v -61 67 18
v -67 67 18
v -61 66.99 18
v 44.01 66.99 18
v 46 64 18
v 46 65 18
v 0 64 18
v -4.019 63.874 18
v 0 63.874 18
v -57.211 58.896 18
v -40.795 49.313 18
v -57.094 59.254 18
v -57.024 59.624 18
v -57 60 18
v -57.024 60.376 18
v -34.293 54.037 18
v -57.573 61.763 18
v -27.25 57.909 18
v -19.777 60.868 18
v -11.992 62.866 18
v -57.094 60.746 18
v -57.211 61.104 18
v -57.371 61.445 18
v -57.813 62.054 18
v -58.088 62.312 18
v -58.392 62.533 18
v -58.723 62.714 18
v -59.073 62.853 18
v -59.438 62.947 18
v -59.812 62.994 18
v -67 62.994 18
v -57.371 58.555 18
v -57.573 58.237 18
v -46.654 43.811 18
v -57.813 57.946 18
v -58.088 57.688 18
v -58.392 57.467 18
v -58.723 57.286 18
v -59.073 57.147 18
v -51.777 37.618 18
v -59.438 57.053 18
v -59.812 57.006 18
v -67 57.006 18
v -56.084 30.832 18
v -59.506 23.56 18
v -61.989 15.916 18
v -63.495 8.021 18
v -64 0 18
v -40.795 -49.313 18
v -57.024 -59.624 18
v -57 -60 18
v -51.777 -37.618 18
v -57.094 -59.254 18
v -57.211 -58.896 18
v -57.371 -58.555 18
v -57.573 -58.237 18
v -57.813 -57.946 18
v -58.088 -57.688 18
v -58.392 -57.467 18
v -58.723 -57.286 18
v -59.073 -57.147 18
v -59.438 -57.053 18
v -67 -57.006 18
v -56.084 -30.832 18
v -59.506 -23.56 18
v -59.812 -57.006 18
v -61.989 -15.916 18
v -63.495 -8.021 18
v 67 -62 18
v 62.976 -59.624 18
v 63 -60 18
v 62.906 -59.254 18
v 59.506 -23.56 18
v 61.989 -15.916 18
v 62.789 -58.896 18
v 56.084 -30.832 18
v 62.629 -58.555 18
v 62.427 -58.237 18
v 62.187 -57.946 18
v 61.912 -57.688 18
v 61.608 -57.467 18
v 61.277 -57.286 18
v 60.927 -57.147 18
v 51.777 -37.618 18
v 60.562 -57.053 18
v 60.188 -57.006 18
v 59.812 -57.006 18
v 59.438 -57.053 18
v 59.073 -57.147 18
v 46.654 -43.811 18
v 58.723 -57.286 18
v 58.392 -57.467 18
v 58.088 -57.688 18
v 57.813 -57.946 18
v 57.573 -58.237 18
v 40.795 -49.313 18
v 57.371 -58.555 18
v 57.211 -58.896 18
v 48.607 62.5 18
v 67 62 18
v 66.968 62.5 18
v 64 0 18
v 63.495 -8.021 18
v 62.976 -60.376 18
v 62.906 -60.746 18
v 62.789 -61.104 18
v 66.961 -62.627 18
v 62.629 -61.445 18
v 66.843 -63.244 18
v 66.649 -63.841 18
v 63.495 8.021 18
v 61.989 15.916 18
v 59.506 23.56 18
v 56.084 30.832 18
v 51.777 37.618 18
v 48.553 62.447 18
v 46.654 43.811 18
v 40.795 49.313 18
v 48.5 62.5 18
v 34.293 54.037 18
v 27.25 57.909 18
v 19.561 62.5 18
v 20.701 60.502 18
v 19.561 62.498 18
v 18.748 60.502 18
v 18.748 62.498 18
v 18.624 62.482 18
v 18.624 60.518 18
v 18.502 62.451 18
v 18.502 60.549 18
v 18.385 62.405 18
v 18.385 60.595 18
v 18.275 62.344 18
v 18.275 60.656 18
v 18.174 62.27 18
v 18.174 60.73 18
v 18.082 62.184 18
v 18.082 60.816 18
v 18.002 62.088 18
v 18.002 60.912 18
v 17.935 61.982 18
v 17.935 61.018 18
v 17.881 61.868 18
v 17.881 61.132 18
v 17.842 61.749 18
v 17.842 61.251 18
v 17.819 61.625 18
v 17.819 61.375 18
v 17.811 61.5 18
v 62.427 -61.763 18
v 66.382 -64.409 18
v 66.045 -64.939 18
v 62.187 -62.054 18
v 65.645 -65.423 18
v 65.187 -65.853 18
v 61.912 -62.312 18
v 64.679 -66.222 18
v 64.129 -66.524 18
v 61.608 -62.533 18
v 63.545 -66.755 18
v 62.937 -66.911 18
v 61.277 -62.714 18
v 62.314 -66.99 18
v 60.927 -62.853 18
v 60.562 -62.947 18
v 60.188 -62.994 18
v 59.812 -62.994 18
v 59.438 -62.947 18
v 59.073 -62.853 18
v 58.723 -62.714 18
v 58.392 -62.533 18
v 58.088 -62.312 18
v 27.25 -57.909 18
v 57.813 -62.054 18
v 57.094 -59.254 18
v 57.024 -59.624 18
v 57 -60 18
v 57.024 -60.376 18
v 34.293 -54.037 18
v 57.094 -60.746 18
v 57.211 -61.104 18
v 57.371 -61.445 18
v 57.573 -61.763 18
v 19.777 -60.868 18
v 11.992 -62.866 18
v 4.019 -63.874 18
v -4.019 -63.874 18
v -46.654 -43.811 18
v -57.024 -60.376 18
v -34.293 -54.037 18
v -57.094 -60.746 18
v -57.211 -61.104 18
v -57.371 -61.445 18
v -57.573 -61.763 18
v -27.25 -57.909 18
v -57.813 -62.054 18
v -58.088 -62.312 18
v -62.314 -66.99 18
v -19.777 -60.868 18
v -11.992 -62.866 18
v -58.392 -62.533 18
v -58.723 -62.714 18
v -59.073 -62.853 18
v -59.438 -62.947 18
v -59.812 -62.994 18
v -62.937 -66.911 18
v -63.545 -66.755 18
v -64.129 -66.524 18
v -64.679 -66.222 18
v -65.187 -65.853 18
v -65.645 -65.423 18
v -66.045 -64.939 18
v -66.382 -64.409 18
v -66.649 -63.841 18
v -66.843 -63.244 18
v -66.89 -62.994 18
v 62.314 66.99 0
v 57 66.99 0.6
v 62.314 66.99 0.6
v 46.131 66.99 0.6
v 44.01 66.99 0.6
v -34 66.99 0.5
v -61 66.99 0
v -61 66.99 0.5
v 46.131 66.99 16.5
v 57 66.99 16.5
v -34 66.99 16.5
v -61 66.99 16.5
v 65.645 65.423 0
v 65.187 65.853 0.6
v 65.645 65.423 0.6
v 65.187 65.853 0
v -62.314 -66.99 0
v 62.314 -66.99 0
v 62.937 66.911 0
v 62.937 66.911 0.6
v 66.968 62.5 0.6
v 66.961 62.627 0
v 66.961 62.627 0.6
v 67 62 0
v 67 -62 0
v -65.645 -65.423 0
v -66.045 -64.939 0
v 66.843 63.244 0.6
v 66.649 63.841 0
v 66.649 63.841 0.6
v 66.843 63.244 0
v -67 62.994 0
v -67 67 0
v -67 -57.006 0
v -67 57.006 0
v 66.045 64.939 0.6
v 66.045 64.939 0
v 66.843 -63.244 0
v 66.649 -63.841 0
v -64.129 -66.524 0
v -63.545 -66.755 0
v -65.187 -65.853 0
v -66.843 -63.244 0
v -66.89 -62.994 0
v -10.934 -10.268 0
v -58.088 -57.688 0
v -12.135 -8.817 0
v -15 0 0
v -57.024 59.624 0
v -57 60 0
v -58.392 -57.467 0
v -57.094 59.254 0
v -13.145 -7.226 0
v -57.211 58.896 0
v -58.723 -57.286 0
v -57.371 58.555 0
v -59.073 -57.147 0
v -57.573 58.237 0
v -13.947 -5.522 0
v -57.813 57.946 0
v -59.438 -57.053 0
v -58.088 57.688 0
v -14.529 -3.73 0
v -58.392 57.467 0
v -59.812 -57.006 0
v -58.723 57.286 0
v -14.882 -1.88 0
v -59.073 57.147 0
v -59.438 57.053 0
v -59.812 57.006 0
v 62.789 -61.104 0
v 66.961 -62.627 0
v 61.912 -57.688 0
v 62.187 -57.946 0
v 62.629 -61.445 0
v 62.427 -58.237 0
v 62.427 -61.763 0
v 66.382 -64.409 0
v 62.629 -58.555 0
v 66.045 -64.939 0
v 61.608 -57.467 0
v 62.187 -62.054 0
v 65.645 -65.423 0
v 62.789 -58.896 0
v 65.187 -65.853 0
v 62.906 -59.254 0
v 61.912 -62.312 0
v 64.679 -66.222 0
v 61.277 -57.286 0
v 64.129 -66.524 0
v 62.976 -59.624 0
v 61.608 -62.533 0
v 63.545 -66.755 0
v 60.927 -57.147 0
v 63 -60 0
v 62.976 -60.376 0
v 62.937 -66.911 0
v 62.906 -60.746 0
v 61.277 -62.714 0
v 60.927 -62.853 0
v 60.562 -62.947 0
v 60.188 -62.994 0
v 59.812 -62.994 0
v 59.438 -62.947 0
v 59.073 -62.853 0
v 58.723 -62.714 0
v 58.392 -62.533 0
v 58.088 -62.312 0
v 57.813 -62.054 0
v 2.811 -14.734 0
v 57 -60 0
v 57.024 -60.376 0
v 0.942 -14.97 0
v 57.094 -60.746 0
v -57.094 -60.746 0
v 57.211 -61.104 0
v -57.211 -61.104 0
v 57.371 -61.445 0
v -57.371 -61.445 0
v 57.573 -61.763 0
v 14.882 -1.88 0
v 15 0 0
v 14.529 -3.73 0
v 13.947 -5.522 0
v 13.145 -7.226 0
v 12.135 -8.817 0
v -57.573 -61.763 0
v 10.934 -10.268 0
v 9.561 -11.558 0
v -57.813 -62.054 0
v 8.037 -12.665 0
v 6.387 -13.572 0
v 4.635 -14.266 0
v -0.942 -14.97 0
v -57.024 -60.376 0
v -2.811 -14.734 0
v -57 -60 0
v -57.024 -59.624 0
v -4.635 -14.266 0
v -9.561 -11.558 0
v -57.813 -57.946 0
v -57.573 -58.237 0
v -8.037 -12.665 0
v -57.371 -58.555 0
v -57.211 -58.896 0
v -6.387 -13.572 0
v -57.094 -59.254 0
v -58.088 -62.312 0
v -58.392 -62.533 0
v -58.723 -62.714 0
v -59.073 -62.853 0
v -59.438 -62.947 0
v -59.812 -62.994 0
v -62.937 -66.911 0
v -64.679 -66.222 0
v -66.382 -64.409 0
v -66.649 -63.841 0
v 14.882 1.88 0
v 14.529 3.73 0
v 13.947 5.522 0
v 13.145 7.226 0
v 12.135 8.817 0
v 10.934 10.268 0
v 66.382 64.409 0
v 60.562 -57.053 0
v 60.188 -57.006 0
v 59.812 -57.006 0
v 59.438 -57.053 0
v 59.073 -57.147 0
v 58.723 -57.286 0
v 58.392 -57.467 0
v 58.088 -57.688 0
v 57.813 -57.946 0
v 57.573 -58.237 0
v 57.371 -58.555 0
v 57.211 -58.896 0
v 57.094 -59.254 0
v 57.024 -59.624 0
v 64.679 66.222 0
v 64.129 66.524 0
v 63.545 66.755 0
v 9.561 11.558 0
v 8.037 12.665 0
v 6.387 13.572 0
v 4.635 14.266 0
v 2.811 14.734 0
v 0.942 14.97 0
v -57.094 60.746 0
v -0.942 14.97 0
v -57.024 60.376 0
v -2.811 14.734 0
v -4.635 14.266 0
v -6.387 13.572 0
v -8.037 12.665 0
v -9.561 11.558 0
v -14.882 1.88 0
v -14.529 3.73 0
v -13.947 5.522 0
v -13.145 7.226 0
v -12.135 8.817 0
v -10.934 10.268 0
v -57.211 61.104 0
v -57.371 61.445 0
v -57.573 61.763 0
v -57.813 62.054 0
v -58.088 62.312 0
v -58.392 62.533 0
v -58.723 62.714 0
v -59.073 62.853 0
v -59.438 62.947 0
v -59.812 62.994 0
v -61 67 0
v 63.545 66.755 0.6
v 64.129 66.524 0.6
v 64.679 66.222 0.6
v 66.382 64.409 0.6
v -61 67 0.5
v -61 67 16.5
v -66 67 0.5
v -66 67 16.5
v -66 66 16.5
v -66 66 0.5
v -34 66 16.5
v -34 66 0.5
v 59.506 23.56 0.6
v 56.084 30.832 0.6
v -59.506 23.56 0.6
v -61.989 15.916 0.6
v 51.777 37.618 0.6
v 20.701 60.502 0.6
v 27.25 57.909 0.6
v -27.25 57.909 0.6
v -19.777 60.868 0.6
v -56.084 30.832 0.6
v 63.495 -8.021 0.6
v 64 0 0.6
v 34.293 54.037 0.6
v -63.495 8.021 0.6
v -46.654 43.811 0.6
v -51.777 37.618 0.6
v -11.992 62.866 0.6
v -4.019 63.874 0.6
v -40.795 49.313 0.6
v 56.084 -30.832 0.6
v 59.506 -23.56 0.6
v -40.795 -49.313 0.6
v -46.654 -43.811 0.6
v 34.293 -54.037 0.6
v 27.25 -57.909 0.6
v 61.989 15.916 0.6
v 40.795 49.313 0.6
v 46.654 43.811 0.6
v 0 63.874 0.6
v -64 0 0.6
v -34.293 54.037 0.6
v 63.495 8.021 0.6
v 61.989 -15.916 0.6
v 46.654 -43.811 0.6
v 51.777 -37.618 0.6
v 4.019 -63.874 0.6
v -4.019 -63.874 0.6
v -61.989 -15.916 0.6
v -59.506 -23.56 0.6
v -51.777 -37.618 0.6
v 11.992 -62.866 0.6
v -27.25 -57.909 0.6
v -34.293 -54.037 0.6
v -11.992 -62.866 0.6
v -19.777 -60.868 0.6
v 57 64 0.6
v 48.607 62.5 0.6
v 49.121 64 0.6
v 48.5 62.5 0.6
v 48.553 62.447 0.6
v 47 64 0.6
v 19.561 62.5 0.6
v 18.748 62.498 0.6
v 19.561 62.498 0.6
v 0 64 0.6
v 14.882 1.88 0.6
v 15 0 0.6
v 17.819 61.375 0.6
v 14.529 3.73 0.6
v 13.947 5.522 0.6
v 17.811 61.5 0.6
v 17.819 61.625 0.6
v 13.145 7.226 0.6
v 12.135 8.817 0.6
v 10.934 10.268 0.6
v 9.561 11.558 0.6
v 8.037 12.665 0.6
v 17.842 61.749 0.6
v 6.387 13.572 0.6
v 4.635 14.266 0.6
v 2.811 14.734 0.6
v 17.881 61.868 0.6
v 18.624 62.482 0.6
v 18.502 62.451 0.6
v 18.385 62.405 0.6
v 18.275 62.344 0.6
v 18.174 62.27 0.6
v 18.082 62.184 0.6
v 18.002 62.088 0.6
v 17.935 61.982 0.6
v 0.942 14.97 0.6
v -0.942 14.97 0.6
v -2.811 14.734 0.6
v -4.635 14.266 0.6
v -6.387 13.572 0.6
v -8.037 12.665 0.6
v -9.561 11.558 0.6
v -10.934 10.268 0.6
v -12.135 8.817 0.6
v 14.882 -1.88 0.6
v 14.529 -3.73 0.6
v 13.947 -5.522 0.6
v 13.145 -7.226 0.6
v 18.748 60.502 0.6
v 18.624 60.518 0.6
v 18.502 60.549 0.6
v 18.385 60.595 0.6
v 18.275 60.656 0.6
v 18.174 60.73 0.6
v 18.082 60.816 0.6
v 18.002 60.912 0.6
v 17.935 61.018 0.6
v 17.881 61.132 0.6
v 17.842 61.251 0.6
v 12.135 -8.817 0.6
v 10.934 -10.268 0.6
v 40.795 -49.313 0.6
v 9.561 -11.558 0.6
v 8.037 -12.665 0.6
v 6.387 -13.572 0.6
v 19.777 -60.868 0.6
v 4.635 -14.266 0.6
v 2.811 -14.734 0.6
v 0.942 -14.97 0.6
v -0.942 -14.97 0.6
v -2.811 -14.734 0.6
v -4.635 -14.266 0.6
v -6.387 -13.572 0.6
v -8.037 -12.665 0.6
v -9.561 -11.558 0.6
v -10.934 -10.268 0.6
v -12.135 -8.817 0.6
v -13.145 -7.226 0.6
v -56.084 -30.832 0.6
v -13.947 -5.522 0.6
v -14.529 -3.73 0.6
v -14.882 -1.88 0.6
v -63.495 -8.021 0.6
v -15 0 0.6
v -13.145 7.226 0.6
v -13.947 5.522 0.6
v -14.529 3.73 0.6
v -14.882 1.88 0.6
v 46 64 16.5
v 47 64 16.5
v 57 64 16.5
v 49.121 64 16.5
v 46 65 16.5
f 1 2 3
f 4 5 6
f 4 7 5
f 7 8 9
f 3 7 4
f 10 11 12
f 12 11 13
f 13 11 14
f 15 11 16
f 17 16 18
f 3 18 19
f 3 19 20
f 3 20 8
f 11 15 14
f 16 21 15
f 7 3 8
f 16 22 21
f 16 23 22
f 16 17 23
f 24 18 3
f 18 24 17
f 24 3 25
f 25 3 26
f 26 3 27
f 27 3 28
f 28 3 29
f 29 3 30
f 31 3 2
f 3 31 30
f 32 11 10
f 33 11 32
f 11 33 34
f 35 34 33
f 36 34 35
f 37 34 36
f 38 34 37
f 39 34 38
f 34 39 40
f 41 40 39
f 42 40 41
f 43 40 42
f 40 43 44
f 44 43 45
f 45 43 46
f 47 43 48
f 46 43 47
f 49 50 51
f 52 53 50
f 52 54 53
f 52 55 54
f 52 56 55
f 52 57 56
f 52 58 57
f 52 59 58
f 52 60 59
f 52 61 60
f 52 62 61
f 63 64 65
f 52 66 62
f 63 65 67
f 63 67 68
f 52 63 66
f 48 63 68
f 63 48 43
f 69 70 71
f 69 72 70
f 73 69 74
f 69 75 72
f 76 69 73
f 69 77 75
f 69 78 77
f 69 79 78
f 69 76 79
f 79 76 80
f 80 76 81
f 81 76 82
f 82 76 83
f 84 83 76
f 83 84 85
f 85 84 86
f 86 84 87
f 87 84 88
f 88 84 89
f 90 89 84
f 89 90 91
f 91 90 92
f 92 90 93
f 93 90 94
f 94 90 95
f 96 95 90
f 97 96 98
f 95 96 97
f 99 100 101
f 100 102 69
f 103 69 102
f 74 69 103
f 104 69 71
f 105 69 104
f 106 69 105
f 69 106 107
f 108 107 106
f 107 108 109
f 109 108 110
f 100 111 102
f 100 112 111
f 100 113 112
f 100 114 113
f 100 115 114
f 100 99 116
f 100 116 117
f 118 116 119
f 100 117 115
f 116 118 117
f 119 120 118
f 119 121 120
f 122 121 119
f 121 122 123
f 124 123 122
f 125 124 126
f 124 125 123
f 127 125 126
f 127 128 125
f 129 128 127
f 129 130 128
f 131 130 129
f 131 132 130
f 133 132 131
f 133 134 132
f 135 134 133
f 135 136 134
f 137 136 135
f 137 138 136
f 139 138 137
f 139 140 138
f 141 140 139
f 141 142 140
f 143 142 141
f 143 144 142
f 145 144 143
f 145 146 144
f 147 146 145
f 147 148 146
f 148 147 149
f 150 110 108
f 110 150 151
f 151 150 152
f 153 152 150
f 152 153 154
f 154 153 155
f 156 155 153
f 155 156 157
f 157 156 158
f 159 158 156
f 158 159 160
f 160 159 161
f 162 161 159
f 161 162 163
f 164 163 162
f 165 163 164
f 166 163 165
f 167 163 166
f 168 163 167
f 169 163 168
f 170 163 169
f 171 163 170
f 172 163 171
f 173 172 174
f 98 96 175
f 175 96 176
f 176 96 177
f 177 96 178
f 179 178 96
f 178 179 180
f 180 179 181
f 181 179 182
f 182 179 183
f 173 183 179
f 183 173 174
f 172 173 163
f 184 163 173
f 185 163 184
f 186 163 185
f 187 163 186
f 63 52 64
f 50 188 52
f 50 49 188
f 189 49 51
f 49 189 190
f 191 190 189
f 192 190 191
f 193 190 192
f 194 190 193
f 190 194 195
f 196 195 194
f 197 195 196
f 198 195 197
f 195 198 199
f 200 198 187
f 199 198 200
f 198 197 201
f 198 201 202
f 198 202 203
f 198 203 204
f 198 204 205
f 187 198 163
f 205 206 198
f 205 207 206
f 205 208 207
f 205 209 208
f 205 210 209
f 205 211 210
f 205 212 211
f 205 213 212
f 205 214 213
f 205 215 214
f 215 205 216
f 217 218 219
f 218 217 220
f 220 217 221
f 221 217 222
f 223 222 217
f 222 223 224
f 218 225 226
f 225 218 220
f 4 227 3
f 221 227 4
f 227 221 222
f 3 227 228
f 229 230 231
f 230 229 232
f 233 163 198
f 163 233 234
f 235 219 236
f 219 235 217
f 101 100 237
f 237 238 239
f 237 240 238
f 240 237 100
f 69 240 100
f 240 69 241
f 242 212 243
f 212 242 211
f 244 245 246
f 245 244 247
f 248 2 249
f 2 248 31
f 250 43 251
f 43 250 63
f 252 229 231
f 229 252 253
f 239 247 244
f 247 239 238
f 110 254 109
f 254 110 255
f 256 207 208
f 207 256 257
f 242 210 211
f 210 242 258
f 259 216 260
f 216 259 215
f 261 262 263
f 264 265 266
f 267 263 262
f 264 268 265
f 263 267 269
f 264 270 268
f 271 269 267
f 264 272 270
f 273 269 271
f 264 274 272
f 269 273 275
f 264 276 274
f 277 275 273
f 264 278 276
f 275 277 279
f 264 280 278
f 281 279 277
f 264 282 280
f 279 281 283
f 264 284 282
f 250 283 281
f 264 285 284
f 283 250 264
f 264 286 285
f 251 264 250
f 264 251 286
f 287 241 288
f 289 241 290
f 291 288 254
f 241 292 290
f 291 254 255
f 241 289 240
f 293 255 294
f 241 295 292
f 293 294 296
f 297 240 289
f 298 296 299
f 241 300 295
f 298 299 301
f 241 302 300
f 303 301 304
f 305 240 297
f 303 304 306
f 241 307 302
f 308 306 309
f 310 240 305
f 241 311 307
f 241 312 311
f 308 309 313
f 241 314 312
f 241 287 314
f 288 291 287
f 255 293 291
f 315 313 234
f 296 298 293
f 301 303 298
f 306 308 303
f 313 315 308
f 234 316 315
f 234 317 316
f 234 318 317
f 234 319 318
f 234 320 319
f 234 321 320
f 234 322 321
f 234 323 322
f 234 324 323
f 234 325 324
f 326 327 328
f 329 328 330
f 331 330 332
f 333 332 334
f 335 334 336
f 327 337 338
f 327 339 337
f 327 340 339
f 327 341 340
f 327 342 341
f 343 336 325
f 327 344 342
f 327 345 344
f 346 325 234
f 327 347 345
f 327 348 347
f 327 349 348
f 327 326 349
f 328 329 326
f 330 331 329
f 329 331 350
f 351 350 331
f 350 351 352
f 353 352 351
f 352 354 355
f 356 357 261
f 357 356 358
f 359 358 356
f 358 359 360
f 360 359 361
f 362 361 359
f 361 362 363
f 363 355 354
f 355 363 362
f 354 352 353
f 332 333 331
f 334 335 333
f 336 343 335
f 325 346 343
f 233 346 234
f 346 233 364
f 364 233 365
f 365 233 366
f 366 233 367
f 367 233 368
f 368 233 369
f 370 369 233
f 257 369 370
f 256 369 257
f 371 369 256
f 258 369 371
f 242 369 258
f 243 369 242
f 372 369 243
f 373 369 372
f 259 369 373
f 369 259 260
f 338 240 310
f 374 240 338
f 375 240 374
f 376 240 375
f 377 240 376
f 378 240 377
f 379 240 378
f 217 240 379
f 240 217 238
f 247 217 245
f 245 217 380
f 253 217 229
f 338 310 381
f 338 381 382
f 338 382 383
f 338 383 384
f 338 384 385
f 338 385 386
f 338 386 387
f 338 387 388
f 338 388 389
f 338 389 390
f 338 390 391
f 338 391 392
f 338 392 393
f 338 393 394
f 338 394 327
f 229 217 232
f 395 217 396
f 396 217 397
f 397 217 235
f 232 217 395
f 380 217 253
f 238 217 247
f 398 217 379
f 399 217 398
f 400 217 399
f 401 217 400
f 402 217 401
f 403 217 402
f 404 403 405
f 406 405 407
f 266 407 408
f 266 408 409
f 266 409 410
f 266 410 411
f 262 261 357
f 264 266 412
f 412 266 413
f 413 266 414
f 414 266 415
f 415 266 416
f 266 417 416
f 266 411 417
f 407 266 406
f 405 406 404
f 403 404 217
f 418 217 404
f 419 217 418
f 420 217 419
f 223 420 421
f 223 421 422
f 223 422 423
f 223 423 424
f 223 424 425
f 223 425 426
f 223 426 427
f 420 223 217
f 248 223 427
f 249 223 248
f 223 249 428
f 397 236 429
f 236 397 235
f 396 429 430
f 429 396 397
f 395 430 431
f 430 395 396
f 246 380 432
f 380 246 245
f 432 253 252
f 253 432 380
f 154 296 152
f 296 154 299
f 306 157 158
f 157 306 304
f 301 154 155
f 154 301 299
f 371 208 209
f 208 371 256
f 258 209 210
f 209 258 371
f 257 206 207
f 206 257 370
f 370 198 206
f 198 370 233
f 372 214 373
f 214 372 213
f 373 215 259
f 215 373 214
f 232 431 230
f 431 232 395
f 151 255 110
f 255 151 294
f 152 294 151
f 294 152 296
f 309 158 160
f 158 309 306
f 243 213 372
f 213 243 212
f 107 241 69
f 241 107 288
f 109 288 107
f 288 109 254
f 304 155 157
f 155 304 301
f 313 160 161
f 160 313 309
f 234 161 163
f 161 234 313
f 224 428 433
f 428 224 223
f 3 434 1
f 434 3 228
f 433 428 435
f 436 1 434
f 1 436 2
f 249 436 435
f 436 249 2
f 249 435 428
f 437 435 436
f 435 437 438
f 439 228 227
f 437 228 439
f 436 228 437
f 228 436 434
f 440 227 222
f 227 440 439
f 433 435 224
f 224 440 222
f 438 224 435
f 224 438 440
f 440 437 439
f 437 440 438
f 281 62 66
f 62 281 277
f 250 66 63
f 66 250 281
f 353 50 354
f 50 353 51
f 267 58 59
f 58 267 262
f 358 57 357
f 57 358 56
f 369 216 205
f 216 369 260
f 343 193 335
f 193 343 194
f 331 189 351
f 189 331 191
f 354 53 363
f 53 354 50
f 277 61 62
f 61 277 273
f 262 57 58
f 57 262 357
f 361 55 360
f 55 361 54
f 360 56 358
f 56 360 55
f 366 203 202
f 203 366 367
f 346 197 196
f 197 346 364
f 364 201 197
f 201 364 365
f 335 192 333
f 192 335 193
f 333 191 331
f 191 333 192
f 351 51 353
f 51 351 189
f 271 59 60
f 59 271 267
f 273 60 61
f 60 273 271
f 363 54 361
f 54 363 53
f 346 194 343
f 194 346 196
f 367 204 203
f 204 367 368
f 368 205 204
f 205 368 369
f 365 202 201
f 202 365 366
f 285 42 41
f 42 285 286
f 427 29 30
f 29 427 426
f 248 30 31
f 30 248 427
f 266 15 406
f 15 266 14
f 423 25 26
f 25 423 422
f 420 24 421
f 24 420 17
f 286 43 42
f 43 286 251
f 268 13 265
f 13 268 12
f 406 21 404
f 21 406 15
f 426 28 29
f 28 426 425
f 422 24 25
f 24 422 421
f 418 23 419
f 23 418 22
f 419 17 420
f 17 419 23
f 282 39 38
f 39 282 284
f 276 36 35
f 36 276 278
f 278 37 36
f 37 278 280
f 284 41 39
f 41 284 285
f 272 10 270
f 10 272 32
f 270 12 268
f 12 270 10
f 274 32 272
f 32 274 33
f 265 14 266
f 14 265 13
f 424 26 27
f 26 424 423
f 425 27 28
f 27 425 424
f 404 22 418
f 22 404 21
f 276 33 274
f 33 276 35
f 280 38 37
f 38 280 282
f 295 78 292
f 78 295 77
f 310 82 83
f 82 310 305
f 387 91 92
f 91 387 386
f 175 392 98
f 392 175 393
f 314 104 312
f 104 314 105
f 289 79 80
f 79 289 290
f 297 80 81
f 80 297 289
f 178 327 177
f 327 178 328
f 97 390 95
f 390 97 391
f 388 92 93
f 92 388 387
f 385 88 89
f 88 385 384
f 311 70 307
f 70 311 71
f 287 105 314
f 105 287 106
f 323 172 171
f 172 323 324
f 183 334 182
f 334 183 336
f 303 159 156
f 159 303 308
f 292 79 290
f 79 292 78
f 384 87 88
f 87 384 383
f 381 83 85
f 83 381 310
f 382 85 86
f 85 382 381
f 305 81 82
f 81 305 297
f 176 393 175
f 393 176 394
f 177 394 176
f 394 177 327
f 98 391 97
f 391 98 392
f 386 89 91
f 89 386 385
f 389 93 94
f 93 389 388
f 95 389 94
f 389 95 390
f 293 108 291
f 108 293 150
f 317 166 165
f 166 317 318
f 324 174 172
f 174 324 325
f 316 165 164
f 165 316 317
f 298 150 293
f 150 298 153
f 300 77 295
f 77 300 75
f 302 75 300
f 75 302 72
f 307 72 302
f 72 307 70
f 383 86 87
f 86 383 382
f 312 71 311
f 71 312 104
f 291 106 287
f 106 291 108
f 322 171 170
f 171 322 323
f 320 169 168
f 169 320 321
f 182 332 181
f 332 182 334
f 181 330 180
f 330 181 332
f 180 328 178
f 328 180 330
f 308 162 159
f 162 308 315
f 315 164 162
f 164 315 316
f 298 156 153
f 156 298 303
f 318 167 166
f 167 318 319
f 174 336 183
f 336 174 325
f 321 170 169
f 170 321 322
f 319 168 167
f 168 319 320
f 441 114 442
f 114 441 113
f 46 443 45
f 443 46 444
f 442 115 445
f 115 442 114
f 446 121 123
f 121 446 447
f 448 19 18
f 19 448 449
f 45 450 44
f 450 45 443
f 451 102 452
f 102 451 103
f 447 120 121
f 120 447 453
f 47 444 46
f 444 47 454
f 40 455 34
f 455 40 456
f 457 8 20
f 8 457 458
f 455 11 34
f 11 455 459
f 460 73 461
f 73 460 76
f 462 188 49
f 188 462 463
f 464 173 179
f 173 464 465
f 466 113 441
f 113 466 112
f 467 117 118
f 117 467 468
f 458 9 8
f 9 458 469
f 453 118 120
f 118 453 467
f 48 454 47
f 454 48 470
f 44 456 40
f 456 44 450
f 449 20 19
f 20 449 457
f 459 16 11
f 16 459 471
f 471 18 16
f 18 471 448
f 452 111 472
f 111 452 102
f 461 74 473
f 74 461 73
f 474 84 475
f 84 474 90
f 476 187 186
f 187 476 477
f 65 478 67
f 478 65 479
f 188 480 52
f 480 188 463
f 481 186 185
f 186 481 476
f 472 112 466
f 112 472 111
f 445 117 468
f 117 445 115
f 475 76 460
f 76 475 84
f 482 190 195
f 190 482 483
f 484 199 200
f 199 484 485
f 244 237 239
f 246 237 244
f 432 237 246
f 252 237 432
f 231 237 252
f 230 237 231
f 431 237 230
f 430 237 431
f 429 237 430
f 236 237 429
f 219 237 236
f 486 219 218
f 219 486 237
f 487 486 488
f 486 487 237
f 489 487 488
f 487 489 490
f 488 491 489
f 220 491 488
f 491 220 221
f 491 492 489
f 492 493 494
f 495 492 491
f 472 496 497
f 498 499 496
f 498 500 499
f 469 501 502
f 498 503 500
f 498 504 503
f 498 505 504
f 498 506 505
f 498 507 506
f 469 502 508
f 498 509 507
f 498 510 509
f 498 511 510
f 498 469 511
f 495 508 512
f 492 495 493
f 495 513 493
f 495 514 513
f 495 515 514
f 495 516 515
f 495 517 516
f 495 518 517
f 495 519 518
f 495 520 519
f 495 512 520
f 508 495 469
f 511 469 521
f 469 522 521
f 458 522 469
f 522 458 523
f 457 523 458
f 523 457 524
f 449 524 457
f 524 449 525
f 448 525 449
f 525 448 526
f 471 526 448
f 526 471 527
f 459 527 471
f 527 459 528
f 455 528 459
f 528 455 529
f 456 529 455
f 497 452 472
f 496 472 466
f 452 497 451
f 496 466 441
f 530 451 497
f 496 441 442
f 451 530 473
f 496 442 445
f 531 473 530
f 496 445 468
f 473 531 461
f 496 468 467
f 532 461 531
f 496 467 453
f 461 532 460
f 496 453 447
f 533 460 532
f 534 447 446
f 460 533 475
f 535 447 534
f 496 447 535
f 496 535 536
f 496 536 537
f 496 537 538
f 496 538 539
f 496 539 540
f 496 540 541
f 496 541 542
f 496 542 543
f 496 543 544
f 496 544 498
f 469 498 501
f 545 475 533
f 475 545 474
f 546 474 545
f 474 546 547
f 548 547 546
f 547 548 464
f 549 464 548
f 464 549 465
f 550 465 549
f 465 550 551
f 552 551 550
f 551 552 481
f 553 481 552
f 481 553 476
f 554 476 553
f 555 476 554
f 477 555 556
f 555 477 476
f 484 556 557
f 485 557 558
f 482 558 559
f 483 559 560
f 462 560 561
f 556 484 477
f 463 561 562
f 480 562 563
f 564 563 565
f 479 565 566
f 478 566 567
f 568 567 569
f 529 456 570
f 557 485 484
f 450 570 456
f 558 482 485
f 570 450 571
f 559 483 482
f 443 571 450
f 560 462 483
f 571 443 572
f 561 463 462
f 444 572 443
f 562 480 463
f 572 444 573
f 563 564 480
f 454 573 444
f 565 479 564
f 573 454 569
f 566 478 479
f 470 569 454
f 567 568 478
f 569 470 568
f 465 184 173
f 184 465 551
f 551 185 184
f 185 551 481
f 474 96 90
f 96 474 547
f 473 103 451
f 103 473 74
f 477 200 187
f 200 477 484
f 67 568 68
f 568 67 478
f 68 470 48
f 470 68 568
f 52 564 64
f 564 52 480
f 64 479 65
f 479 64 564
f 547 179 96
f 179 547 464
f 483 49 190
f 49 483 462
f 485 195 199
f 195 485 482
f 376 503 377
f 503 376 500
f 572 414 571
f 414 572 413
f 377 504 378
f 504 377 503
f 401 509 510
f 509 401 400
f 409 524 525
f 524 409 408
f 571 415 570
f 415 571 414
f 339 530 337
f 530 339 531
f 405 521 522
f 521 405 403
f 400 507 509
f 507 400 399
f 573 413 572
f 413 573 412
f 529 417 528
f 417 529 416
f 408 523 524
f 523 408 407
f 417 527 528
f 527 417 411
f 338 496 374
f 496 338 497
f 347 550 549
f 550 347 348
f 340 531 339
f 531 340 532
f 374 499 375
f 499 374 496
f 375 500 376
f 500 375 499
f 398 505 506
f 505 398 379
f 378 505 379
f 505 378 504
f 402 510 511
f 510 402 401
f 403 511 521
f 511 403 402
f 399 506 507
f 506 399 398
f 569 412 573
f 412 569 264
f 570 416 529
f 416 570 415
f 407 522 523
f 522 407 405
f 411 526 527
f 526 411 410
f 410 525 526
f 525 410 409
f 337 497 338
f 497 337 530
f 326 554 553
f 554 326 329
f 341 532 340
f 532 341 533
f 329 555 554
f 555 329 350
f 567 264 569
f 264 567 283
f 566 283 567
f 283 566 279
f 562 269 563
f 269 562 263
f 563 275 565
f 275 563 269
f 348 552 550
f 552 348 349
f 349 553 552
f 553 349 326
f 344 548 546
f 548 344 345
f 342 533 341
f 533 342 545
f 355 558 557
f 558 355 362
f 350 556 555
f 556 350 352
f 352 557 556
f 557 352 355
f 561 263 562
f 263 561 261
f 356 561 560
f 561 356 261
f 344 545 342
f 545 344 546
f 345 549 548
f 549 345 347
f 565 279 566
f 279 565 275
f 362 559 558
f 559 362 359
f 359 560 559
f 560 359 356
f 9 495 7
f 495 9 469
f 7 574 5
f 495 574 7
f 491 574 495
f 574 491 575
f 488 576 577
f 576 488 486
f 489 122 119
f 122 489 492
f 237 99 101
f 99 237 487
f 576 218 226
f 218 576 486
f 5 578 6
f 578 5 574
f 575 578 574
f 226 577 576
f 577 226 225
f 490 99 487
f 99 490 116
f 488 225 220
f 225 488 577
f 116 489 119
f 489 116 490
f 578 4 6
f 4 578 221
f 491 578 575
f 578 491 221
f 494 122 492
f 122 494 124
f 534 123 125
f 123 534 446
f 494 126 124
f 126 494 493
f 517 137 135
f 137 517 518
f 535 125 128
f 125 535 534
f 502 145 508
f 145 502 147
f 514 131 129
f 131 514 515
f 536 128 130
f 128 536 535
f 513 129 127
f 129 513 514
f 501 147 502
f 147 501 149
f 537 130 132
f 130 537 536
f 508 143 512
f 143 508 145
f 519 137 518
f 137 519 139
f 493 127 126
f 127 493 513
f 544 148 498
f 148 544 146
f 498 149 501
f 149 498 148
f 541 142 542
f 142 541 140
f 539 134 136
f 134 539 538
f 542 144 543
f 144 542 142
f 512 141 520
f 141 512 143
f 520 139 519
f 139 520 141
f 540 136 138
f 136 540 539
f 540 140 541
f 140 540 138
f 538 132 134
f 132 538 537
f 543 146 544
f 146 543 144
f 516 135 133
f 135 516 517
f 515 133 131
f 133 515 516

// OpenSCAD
$fn = 50;


union() {
	difference() {
		union() {
			translate(v = [0, 0, 0]) {
				rotate(a = [0, 0, 0]) {
					hull() {
						translate(v = [-62.0000000000, 62.0000000000, 0]) {
							rotate(a = [0, 0, 0]) {
								translate(v = [0, 0, 0]) {
									rotate(a = [0, 0, 0]) {
										cylinder(h = 18, r = 5);
									}
								}
							}
						}
						translate(v = [62.0000000000, 62.0000000000, 0]) {
							rotate(a = [0, 0, 0]) {
								translate(v = [0, 0, 0]) {
									rotate(a = [0, 0, 0]) {
										cylinder(h = 18, r = 5);
									}
								}
							}
						}
						translate(v = [-62.0000000000, -62.0000000000, 0]) {
							rotate(a = [0, 0, 0]) {
								translate(v = [0, 0, 0]) {
									rotate(a = [0, 0, 0]) {
										cylinder(h = 18, r = 5);
									}
								}
							}
						}
						translate(v = [62.0000000000, -62.0000000000, 0]) {
							rotate(a = [0, 0, 0]) {
								translate(v = [0, 0, 0]) {
									rotate(a = [0, 0, 0]) {
										cylinder(h = 18, r = 5);
									}
								}
							}
						}
					}
				}
			}
			translate(v = [-67.0000000000, 61.0000000000, 0]) {
				rotate(a = [0, 0, 0]) {
					cube(size = [6, 6, 18]);
				}
			}
		}
		union() {
			#translate(v = [-66.0000000000, 66.0000000000, 0.5000000000]) {
				rotate(a = [0, 0, 0]) {
					cube(size = [32, 1, 16]);
				}
			}
			translate(v = [-67.5000000000, -60.0000000000, -125]) {
				rotate(a = [0, 0, 0]) {
					hull() {
						translate(v = [7.5000000000, 0, 0]) {
							rotate(a = [0, 0, 0]) {
								translate(v = [0, 0, 0]) {
									rotate(a = [0, 0, 0]) {
										cylinder(h = 250, r = 3.0000000000);
									}
								}
							}
						}
						translate(v = [-7.5000000000, 0, 0]) {
							rotate(a = [0, 0, 0]) {
								translate(v = [0, 0, 0]) {
									rotate(a = [0, 0, 0]) {
										cylinder(h = 250, r = 3.0000000000);
									}
								}
							}
						}
					}
				}
			}
			translate(v = [-67.5000000000, 60.0000000000, -125]) {
				rotate(a = [0, 0, 0]) {
					hull() {
						translate(v = [7.5000000000, 0, 0]) {
							rotate(a = [0, 0, 0]) {
								translate(v = [0, 0, 0]) {
									rotate(a = [0, 0, 0]) {
										cylinder(h = 250, r = 3.0000000000);
									}
								}
							}
						}
						translate(v = [-7.5000000000, 0, 0]) {
							rotate(a = [0, 0, 0]) {
								translate(v = [0, 0, 0]) {
									rotate(a = [0, 0, 0]) {
										cylinder(h = 250, r = 3.0000000000);
									}
								}
							}
						}
					}
				}
			}
			translate(v = [60.0000000000, -60.0000000000, -125.0000000000]) {
				rotate(a = [0, 0, 0]) {
					cylinder(h = 250, r = 3.0000000000);
				}
			}
			translate(v = [0, 0, 0.6000000000]) {
				rotate(a = [0, 0, 0]) {
					cylinder(h = 20.4000000000, r = 64.0000000000);
				}
			}
			translate(v = [0, 0, -9.0000000000]) {
				rotate(a = [0, 0, 0]) {
					cylinder(h = 18, r = 15.0000000000);
				}
			}
			translate(v = [0.0000000000, 62.5000000000, 0.6000000000]) {
				rotate(a = [0, 0, 0]) {
					cube(size = [67.0000000000, 1.5000000000, 20.4000000000]);
				}
			}
			translate(v = [57.0000000000, 62.5000000000, 0.6000000000]) {
				rotate(a = [0, 0, 0]) {
					cube(size = [10, 4.5000000000, 20.4000000000]);
				}
			}
			translate(v = [46.0000000000, 62.5000000000, 16.5000000000]) {
				rotate(a = [0, 0, 0]) {
					cube(size = [21, 4.5000000000, 1.5000000000]);
				}
			}
			translate(v = [43.2500000000, 67.7500000000, 0.6000000000]) {
				rotate(a = [0, 0, -45]) {
					cube(size = [7.5000000000, 1.5000000000, 20.4000000000]);
				}
			}
			translate(v = [12.0610000000, 60.5000000000, 0.6000000000]) {
				rotate(a = [0, 0, 0]) {
					cube(size = [7.5000000000, 2, 17.4000000000]);
				}
			}
		}
	}
	union() {
		translate(v = [21.3110000000, 61.5000000000, 0]) {
			rotate(a = [0, 0, 0]) {
				hull() {
					translate(v = [2.5000000000, 0, 0]) {
						rotate(a = [0, 0, 0]) {
							#translate(v = [0, 0, 0]) {
								rotate(a = [0, 0, 0]) {
									cylinder(h = 18, r = 1.0000000000);
								}
							}
						}
					}
					translate(v = [-2.5000000000, 0, 0]) {
						rotate(a = [0, 0, 0]) {
							#translate(v = [0, 0, 0]) {
								rotate(a = [0, 0, 0]) {
									cylinder(h = 18, r = 1.0000000000);
								}
							}
						}
					}
				}
			}
		}
	}
}
